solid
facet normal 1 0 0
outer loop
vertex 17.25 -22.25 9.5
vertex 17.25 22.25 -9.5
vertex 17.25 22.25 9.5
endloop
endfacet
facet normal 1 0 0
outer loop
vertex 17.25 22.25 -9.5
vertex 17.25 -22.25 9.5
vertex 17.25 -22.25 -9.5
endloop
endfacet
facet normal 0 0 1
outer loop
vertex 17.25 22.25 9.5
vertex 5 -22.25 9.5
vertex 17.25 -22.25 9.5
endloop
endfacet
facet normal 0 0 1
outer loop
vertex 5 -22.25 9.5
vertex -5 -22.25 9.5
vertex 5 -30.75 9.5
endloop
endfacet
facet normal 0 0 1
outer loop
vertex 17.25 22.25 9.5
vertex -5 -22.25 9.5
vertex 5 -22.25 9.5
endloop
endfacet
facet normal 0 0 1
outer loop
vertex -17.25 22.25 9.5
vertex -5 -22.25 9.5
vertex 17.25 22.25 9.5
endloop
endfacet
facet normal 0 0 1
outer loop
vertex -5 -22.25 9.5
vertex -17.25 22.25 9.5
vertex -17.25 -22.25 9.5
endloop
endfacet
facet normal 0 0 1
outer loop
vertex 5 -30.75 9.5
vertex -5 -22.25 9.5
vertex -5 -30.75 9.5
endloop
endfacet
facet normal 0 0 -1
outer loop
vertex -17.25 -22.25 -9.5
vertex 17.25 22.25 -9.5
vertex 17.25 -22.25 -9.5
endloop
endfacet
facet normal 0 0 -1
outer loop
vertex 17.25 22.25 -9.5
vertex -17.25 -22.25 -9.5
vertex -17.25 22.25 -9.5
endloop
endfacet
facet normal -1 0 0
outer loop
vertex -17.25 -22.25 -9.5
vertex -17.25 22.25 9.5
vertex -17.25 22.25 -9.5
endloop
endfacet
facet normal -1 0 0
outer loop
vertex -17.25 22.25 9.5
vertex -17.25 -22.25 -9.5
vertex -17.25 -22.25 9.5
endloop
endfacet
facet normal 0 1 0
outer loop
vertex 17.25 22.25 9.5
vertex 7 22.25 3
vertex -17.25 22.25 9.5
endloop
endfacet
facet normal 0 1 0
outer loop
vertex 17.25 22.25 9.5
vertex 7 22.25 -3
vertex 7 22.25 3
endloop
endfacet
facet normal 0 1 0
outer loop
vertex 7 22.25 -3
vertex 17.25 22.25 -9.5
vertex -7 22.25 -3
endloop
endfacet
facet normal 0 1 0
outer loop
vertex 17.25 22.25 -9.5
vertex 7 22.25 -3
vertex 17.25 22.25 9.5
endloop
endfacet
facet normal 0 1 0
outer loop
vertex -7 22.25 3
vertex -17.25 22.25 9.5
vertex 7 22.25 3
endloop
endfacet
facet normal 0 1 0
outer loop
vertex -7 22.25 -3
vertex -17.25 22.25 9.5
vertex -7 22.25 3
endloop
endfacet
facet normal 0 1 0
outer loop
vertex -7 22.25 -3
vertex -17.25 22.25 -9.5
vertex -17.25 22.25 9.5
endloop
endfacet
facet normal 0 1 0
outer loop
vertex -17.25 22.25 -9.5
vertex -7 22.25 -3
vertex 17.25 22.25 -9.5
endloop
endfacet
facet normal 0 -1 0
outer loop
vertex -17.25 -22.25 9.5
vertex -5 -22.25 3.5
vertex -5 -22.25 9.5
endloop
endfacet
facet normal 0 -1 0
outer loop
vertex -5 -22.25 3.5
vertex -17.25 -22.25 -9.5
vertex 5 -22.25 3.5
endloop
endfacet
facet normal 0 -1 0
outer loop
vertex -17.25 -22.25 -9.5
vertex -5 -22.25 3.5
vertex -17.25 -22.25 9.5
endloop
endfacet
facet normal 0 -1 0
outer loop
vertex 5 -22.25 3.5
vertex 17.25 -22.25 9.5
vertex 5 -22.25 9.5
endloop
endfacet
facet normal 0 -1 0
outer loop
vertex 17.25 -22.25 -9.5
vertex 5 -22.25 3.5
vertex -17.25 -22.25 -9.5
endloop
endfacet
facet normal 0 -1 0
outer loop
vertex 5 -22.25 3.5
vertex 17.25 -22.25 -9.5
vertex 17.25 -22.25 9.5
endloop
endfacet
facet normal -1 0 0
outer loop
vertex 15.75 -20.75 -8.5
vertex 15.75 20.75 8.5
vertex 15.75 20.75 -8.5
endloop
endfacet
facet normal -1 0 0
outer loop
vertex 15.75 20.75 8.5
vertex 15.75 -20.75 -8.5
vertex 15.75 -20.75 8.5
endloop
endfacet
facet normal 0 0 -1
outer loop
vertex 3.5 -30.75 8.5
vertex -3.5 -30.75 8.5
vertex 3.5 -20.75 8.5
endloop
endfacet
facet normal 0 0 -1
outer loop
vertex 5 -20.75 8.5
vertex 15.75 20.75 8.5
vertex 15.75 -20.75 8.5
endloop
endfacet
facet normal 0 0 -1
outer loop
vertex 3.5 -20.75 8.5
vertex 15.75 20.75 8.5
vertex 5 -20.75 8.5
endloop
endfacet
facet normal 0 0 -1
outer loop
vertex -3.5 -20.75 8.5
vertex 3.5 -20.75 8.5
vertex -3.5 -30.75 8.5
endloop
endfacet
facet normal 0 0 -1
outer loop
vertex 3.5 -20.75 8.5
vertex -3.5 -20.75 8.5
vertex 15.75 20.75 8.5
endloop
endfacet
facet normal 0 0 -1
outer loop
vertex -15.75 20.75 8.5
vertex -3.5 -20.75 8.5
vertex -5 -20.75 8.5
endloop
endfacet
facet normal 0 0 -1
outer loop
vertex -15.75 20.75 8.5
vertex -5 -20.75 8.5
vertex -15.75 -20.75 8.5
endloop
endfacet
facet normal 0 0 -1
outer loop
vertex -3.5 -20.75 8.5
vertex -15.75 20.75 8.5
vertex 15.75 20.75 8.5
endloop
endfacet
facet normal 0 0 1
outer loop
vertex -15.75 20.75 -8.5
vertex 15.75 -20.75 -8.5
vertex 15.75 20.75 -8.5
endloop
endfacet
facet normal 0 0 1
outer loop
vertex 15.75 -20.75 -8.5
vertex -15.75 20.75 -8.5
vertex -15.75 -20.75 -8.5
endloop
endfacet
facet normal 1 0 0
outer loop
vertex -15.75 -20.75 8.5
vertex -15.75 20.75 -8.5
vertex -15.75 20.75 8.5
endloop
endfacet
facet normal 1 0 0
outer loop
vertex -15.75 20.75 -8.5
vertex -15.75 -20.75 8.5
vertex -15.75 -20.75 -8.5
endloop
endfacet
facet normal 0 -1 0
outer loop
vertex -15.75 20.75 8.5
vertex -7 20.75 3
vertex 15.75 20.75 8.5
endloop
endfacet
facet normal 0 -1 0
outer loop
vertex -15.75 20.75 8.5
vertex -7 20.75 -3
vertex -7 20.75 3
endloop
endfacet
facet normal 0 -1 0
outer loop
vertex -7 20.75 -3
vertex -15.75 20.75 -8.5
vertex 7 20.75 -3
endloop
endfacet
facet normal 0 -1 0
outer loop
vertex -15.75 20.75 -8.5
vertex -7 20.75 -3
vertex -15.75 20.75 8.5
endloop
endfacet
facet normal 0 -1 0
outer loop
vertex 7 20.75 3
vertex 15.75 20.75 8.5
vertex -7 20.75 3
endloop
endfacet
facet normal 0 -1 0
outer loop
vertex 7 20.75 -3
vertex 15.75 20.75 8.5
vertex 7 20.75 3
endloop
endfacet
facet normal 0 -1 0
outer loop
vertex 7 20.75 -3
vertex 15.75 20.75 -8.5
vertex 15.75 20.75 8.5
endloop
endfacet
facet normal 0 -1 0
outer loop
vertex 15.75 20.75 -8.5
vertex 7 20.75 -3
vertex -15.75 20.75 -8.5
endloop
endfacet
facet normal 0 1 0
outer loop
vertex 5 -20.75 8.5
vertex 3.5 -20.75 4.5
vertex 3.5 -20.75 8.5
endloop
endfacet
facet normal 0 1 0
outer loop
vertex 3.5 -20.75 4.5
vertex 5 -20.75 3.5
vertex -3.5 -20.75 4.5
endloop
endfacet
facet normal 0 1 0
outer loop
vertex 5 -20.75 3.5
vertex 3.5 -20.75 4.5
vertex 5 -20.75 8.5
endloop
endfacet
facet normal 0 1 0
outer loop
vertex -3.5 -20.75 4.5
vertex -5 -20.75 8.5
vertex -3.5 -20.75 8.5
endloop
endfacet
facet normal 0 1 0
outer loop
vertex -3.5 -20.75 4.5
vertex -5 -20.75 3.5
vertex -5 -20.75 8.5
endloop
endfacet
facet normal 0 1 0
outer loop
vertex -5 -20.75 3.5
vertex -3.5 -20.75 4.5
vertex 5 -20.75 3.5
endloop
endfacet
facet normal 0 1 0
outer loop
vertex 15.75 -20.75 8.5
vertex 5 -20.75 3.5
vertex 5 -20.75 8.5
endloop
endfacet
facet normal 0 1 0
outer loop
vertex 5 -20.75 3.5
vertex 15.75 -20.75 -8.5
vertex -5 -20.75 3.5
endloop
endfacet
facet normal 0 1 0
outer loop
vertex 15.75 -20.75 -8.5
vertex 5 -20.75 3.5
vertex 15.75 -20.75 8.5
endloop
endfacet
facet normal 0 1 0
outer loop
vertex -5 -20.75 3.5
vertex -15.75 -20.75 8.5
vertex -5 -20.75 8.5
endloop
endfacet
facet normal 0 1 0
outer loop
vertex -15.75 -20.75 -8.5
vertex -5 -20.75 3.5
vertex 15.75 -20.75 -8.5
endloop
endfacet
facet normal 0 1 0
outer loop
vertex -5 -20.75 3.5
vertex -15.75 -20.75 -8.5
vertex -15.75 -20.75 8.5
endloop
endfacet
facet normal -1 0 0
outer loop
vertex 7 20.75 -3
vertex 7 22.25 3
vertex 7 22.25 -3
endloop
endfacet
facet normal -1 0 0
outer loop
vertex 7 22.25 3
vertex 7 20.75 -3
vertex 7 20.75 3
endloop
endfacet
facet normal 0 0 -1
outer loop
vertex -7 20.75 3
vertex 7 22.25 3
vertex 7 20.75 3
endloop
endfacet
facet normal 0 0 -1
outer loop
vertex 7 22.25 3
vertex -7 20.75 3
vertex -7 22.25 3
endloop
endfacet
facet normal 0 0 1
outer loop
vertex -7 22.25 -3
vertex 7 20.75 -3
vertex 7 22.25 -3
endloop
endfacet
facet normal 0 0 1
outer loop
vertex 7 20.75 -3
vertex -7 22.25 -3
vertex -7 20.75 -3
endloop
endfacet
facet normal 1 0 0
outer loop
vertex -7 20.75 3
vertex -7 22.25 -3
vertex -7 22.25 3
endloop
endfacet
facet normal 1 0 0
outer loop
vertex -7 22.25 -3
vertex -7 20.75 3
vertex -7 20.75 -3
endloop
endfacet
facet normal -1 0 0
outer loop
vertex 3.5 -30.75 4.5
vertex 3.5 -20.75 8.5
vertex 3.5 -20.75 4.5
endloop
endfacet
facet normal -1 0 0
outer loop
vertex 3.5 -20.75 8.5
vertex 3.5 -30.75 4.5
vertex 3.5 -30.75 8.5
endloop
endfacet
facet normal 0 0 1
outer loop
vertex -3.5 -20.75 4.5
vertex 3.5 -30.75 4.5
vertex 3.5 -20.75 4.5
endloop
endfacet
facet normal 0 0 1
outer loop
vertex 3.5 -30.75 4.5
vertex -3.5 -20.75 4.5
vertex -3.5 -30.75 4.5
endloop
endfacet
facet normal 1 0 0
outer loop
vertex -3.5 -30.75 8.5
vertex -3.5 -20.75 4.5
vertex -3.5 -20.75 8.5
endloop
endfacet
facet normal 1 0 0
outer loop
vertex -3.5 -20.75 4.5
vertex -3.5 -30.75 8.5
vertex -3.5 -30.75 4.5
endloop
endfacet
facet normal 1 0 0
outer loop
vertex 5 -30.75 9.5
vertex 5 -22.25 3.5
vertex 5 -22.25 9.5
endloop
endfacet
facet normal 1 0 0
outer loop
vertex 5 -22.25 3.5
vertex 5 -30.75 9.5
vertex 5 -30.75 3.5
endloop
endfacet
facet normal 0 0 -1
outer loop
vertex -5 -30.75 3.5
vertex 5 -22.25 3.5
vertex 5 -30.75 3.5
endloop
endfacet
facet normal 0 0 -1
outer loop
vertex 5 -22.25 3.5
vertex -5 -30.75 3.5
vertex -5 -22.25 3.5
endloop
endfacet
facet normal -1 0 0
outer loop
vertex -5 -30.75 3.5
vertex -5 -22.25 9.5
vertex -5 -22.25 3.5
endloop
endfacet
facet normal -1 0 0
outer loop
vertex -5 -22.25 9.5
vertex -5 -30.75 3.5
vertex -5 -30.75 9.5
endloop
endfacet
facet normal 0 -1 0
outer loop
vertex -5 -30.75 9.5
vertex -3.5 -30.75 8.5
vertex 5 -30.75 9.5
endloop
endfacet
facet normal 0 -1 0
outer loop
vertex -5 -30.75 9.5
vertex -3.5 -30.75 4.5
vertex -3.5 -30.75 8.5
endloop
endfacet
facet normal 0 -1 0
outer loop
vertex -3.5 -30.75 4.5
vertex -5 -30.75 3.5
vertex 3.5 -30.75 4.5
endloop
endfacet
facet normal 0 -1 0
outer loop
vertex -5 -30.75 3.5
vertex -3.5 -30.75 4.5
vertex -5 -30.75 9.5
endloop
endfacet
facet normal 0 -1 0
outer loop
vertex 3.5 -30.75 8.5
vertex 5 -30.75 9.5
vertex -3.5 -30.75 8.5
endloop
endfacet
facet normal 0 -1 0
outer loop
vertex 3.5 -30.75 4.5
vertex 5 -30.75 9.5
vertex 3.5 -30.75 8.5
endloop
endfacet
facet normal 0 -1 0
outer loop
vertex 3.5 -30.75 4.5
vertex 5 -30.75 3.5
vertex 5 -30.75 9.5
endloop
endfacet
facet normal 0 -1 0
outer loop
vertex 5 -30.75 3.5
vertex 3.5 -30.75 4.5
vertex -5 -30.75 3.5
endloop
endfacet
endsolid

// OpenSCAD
include <BOSL/shapes.scad>;

x = 31.5;
y = 41.5;
z = 17;

difference() {
    cuboid([x+3, y+3, z+2]);
    cuboid([x, y, z]);
    translate([0, y/2, 0]) cuboid([14, 1.5, 6], align=V_BACK);
    translate([0, -y/2, z/2-4/2]) cuboid([7, 1.5, 4], align=V_FRONT);
}

translate([0, -y/2, z/2-4/2]) difference() {
    cuboid([7+3, 10, 4+2  ], align=V_FRONT);
    cuboid([7, 10, 4], align=V_FRONT);
}
